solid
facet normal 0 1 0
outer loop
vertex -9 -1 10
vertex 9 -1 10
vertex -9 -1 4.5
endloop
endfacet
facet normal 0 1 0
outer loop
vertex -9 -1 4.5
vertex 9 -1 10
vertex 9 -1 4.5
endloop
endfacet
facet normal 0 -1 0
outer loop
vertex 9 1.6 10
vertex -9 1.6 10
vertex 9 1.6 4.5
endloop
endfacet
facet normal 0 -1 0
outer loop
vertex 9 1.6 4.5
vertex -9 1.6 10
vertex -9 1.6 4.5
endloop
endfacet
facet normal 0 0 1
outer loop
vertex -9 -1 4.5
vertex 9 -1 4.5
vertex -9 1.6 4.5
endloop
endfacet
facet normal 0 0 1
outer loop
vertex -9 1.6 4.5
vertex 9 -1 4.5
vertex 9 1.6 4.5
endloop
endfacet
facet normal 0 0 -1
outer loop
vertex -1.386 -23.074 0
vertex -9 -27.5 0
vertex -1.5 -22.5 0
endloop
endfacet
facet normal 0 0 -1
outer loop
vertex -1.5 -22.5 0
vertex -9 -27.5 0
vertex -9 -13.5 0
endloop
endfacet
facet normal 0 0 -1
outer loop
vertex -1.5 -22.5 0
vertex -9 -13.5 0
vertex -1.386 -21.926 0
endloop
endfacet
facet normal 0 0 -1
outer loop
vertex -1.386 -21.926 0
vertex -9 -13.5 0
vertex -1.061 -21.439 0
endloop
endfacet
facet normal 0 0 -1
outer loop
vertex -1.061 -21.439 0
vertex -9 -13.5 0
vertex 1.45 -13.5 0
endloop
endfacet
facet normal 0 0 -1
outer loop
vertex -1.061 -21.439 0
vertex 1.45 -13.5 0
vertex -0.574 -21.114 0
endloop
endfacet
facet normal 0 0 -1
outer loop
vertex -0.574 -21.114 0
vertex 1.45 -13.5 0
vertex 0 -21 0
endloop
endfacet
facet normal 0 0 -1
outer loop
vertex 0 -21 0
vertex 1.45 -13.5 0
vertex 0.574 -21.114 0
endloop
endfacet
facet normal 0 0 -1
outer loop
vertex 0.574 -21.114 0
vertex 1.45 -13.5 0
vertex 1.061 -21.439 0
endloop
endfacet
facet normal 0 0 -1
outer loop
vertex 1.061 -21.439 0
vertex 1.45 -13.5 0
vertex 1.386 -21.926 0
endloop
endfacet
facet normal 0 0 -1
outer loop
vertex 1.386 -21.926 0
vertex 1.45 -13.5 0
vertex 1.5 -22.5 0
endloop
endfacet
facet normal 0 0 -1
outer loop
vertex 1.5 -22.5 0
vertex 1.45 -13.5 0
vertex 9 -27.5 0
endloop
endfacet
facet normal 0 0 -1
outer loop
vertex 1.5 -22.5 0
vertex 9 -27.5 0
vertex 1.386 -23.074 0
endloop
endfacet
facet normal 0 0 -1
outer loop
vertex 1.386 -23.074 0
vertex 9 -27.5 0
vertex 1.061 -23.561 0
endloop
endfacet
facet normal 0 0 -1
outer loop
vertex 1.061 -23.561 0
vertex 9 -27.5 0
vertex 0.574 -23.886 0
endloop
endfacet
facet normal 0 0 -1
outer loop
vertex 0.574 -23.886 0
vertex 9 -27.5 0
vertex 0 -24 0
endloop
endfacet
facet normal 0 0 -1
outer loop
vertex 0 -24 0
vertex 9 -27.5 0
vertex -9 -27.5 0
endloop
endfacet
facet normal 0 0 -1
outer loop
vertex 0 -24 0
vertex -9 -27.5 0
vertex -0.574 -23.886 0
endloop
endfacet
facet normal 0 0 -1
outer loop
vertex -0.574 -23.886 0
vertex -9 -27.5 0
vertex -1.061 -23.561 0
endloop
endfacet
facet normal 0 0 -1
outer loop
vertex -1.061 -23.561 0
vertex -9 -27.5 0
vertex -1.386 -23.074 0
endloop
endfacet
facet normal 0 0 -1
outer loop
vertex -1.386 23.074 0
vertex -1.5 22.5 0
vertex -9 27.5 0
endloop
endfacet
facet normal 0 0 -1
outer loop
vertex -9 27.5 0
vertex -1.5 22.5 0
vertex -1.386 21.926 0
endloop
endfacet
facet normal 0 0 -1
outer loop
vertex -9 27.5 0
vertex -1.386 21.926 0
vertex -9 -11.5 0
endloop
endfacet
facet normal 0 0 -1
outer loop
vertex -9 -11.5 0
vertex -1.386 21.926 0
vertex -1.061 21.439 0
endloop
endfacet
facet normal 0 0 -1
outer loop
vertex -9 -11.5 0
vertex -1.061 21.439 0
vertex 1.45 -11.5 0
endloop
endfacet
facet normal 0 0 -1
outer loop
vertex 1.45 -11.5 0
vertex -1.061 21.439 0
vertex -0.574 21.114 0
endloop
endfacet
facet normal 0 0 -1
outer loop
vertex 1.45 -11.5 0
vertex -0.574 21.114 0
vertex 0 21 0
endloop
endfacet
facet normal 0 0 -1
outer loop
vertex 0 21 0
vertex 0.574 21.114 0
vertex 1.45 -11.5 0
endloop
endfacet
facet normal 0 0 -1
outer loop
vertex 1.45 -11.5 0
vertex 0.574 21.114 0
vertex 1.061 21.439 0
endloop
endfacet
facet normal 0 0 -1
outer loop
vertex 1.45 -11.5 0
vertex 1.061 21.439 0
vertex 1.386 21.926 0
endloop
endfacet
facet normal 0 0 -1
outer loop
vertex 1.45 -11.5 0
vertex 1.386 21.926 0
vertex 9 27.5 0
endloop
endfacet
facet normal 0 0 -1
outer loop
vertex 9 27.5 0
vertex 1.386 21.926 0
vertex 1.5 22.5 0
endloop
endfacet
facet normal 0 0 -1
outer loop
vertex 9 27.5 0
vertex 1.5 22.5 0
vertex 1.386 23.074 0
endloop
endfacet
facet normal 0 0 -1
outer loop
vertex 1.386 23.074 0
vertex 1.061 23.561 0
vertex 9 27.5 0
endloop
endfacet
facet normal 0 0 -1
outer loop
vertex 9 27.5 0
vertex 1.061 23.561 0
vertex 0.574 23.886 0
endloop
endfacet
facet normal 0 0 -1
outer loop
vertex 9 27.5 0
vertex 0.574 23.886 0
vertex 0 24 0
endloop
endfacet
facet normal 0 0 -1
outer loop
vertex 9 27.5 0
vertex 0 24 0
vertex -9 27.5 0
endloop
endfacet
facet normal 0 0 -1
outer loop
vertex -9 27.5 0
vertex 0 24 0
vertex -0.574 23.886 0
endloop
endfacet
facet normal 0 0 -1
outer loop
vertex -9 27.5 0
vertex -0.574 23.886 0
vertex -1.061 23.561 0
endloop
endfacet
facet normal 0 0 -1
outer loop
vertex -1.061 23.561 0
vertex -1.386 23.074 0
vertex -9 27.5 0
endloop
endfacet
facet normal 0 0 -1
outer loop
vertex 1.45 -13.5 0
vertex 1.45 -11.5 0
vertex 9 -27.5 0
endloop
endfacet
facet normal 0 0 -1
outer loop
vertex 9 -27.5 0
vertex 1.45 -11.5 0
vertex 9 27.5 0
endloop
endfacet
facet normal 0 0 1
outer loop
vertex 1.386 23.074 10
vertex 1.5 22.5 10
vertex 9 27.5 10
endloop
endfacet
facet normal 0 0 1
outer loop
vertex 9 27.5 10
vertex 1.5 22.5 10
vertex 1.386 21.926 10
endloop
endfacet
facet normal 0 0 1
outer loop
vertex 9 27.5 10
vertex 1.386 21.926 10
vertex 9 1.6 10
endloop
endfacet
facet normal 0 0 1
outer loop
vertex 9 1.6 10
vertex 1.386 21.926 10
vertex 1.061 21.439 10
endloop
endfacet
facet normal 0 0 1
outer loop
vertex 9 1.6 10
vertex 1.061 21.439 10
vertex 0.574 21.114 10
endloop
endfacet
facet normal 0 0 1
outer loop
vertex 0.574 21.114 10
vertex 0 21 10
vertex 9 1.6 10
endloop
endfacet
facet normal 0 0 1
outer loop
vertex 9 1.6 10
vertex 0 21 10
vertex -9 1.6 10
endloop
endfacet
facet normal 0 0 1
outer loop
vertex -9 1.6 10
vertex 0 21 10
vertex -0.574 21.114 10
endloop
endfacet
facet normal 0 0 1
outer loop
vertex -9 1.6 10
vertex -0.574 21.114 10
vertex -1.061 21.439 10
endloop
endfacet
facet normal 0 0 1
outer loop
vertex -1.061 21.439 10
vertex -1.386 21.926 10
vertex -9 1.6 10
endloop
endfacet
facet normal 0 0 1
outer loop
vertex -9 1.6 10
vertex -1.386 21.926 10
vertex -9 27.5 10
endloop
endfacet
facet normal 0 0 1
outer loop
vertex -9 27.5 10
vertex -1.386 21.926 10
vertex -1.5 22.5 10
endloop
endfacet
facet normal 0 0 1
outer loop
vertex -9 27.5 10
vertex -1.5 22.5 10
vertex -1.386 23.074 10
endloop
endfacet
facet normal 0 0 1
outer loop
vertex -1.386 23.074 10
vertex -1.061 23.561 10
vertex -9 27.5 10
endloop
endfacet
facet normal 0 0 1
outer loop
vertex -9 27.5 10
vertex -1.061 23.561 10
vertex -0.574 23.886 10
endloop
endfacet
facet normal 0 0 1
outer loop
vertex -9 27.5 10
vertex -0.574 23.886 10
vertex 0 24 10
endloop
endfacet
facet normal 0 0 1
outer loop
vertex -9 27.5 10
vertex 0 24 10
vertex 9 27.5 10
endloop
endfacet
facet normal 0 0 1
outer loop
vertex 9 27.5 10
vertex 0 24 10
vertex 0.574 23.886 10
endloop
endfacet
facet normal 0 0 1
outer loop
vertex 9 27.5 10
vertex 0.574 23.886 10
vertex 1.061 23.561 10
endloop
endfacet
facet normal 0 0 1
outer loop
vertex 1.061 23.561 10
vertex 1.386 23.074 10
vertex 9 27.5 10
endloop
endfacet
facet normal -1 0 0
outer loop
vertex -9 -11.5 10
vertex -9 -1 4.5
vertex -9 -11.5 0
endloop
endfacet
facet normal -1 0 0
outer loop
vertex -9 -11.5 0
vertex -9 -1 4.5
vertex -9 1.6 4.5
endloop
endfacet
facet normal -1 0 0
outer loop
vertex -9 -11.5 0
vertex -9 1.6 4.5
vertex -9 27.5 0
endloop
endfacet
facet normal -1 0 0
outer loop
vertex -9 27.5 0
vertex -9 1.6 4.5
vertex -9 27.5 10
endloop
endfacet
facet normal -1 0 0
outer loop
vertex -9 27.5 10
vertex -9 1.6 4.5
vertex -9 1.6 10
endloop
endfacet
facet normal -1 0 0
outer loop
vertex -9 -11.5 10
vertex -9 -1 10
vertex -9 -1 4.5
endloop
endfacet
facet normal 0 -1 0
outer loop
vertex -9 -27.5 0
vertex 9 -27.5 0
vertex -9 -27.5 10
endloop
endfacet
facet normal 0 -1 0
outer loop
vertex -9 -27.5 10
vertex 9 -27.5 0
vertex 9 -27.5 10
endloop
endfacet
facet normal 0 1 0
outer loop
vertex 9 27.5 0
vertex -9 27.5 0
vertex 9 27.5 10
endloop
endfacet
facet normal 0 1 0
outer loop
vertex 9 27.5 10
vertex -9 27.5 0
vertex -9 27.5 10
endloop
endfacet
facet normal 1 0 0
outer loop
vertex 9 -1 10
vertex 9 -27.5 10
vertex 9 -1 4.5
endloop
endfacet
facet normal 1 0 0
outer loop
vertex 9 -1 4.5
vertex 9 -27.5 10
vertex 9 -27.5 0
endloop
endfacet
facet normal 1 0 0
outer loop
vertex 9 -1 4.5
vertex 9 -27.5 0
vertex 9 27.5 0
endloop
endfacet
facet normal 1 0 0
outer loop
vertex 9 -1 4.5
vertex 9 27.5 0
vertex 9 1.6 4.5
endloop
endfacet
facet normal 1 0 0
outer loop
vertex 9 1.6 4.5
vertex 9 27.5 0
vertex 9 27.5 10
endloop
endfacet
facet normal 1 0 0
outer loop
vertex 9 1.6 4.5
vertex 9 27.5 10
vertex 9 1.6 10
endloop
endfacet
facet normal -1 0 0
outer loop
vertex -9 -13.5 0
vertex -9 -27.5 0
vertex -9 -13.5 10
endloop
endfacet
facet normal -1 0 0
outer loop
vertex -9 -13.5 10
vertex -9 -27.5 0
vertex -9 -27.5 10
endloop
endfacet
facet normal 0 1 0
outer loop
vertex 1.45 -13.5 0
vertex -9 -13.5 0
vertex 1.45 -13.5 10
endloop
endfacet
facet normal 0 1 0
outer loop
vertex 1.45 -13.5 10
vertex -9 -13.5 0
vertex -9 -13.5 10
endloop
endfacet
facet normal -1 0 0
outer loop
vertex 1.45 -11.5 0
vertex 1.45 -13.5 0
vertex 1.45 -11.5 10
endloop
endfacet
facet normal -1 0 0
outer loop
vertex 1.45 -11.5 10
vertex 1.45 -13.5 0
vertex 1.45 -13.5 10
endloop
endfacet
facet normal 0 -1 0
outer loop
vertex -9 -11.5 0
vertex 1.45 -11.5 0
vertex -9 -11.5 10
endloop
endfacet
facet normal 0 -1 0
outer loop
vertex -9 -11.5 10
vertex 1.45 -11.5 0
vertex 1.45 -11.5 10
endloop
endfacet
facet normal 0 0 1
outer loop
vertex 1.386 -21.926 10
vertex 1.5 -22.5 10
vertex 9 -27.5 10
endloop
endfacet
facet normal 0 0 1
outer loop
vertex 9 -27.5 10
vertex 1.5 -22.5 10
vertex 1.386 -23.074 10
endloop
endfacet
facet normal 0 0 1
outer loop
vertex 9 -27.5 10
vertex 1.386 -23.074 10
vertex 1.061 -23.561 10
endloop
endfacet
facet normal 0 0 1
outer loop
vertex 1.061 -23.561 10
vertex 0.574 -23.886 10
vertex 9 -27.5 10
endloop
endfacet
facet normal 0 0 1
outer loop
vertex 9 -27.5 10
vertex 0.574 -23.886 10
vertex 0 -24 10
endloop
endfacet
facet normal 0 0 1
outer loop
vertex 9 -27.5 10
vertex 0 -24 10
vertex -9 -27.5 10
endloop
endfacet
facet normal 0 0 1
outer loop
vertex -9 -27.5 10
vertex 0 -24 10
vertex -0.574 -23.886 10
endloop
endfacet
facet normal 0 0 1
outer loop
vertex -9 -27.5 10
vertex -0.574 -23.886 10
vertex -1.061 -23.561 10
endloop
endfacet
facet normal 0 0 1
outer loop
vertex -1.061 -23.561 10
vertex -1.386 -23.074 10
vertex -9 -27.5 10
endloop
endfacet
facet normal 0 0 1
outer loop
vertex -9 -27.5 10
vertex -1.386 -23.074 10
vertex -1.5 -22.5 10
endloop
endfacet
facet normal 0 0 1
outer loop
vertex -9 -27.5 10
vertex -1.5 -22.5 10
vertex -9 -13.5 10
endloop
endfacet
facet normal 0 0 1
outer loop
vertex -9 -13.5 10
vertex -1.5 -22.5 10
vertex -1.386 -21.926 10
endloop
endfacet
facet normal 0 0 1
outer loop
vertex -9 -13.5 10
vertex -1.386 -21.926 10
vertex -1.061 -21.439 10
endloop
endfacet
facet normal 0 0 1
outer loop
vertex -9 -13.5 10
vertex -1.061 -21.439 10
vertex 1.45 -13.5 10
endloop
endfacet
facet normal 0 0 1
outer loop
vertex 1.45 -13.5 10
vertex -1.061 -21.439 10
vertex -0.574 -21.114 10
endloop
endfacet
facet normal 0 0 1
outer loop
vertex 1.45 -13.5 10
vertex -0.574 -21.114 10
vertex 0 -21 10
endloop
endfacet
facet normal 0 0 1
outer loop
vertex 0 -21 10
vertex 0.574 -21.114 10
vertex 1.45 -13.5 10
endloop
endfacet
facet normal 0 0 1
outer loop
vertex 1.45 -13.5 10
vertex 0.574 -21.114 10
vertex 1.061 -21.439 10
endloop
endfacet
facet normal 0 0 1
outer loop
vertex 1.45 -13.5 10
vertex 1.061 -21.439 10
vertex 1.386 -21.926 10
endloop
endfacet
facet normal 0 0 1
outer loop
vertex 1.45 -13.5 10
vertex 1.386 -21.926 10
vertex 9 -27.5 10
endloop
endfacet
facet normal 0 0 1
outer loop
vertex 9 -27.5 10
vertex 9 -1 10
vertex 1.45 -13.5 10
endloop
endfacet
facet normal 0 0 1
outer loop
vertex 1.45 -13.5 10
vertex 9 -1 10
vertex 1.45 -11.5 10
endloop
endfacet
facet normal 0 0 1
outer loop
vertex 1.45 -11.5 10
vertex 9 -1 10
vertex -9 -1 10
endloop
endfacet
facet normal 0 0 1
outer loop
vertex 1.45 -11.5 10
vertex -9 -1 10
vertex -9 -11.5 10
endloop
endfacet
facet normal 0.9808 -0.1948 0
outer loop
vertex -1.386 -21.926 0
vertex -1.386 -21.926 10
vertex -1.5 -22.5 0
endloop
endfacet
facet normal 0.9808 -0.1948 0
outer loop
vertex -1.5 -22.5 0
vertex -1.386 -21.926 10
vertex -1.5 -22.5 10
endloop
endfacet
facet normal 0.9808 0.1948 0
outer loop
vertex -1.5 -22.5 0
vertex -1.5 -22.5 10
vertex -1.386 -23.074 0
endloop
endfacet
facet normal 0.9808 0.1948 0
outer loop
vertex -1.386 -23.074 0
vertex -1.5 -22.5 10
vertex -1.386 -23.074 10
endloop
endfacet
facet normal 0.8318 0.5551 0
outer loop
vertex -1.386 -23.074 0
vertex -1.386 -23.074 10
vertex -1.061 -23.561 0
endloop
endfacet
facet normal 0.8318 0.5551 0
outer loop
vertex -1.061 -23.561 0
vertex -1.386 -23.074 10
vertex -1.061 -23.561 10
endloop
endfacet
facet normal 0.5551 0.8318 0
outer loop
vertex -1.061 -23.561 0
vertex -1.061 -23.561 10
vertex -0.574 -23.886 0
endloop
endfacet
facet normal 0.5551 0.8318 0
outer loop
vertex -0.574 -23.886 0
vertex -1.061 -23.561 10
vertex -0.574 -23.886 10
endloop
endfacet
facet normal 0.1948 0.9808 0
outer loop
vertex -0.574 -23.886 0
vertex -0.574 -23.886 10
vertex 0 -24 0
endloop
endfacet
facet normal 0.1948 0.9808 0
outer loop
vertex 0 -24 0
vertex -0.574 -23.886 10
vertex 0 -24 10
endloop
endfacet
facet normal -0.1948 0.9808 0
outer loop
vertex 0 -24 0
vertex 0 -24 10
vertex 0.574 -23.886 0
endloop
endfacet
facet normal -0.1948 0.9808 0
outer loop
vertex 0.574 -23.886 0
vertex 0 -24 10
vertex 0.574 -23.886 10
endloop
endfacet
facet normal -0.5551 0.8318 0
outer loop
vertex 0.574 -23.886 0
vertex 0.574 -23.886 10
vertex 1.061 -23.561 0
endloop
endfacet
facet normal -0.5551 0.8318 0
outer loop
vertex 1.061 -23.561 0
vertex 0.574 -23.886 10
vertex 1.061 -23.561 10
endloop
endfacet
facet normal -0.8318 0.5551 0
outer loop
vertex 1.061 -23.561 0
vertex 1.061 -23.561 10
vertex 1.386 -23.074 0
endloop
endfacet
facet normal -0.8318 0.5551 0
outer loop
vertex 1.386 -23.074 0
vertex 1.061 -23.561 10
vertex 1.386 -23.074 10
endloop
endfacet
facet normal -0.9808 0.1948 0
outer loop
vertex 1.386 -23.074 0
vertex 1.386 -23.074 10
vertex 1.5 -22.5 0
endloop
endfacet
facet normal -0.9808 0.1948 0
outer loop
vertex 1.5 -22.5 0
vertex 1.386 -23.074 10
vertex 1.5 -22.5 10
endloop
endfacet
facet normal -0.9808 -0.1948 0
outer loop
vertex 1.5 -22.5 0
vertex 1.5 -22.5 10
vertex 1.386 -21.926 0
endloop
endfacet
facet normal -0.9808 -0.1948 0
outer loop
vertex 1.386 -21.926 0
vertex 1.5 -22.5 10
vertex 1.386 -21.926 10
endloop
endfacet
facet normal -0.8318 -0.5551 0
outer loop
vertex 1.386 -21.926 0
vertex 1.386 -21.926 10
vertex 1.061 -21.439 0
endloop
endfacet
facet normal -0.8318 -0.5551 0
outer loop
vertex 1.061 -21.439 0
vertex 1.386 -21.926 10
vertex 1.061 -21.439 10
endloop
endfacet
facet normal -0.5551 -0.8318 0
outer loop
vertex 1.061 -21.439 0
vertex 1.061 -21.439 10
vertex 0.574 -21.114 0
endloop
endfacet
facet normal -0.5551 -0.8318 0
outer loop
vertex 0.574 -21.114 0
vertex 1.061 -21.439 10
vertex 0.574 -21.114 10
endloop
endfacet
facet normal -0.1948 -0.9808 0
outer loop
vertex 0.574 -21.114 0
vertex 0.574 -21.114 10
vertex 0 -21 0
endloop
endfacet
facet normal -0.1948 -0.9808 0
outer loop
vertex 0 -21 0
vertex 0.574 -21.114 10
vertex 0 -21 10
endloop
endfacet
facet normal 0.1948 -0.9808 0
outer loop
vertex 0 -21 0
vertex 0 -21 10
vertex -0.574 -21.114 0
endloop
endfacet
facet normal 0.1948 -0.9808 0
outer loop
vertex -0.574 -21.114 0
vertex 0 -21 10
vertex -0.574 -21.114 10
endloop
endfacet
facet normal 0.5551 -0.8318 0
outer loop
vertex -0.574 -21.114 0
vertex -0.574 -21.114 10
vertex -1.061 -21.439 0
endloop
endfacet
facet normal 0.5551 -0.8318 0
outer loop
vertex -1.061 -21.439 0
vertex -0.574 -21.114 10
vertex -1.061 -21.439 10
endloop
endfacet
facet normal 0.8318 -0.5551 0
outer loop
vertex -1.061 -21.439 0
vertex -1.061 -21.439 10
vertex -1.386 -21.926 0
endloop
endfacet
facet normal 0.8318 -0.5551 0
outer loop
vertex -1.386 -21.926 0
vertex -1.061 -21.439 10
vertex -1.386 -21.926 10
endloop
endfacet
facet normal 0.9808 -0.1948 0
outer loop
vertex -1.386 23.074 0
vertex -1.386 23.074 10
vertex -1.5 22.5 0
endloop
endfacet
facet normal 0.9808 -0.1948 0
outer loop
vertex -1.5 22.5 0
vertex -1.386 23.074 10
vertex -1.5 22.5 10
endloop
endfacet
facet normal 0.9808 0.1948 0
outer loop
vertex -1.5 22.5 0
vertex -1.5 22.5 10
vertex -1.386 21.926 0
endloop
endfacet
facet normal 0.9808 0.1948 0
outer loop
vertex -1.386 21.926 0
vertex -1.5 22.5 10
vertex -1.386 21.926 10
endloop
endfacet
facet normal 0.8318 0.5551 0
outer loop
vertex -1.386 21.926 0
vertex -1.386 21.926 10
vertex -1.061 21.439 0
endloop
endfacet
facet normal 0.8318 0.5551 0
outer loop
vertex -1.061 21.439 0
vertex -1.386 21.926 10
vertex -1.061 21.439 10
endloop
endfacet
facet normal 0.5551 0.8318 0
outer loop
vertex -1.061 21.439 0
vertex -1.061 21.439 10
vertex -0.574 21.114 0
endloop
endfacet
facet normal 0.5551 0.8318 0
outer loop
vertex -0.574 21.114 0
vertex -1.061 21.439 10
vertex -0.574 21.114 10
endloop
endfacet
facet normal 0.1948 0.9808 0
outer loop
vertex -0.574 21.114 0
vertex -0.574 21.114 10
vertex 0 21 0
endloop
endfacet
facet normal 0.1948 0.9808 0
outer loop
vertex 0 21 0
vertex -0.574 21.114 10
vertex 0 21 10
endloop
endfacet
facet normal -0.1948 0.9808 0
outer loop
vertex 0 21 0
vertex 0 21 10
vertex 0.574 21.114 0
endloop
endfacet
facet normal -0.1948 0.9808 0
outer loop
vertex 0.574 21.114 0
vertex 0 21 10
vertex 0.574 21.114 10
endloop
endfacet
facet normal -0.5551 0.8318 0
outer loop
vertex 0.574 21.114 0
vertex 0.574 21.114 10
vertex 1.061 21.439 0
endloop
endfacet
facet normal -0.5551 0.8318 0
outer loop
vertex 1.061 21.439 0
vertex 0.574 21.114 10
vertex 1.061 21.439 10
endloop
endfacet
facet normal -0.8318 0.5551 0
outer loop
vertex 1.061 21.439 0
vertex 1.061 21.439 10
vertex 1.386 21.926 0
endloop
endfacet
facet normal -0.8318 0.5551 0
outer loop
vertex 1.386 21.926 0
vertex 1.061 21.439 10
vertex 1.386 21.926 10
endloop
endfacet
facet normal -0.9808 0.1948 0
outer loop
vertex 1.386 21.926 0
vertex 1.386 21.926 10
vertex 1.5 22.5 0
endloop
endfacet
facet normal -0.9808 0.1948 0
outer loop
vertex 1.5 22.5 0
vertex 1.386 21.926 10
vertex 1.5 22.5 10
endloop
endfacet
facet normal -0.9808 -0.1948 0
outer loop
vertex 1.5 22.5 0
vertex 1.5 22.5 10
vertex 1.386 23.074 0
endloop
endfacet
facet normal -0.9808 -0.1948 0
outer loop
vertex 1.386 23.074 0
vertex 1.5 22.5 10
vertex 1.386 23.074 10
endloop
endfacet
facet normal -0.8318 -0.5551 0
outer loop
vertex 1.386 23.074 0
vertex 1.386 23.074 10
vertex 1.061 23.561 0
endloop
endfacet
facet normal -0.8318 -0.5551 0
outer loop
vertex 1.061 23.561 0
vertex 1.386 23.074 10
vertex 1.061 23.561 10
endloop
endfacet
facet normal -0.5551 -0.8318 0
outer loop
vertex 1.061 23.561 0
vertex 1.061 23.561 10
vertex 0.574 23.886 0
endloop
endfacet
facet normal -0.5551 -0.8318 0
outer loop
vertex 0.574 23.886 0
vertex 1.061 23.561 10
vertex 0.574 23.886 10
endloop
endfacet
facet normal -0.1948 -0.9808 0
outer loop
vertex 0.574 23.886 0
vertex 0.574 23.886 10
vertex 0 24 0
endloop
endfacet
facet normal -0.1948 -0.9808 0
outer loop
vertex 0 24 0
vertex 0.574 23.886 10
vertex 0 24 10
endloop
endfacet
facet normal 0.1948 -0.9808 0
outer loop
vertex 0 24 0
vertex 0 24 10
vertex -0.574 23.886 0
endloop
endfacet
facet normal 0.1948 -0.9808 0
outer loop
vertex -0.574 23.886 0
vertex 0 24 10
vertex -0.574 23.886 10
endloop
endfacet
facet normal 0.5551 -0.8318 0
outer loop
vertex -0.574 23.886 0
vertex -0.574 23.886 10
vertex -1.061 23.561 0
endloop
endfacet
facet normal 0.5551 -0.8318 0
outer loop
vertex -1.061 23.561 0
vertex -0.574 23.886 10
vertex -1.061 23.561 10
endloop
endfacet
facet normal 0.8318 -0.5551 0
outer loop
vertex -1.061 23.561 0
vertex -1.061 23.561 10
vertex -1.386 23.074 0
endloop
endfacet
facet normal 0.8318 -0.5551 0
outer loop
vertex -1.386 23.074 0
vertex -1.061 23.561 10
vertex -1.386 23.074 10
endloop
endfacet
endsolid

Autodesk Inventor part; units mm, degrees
ref_plane "YZ Plane" through (0, 0, 0) normal (1, 0, 0) x (0, 1, 0)
ref_plane "XZ Plane" through (0, 0, 0) normal (0, 1, 0) x (-1, 0, 0)
ref_plane "XY Plane" through (0, 0, 0) normal (0, 0, 1) x (1, 0, 0)
sketch "スケッチ1" plane through (0, 0, 0) normal (0, 0, 1) x (1, 0, 0)
  line L0 (-9, -27.5) -> (9, -27.5)
  line L1 (9, -27.5) -> (9, 27.5)
  line L2 (9, 27.5) -> (-9, 27.5)
  line L3 (-9, 27.5) -> (-9, -27.5)
  line L4 (-9, -27.5) -> (9, 27.5) construction
  line L5 (9, -27.5) -> (-9, 27.5) construction
  point P0 (0, 0)
  dimension "d0" = 18
  dimension "d1" = 55
extrude "押し出し1" add sketch "スケッチ1" along normal blind 10
sketch "スケッチ2" plane through (0, 0, 10) normal (0, 0, 1) x (1, 0, 0)
  line L0 (-9, 27.5) -> (-9, -27.5) projected
  line L1 (9, -27.5) -> (9, 27.5) projected
  line L2 (-9, -1) -> (9, -1)
  line L3 (9, -1) -> (9, 1.6)
  line L4 (9, 1.6) -> (-9, 1.6)
  line L5 (-9, 1.6) -> (-9, -1)
  line L6 (-9, -27.5) -> (9, -27.5) projected
  point P0 (0, 0)
  point P1 (9, -1)
  dimension "d4" = 2.6
  dimension "d5" = 26.5
extrude "押し出し2" cut sketch "スケッチ2" against normal blind 5.5 contours L4 L1 L2 L0
sketch "スケッチ3" plane through (0, 0, 10) normal (0, 0, 1) x (1, 0, 0)
  line L0 (-9, -1) -> (-9, -27.5) projected
  line L1 (-9, -13.5) -> (1.45, -13.5)
  line L2 (1.45, -13.5) -> (1.45, -11.5)
  line L3 (1.45, -11.5) -> (-9, -11.5)
  line L4 (-9, -11.5) -> (-9, -13.5)
  line L5 (-9, -27.5) -> (9, -27.5) projected
  point P0 (0, 0)
  dimension "d8" = 2
  dimension "d9" = 14
  dimension "d10" = 10.45
extrude "押し出し3" cut sketch "スケッチ3" against normal through all
sketch "スケッチ4" plane through (0, 0, 10) normal (0, 0, 1) x (1, 0, 0)
  circle A0 centre (0, 22.5) radius 1.5
  circle A1 centre (0, -22.5) radius 1.5
  line L0 (9, 27.5) -> (-9, 27.5) projected
  line L1 (-9, -27.5) -> (9, -27.5) projected
  point P0 (0, 0)
  dimension "d13" = 3
  dimension "d14" = 3
  dimension "d15" = 5
  dimension "d16" = 5
extrude "押し出し4" cut sketch "スケッチ4" against normal through all
properties part number "ジョイントモーターハメ"
